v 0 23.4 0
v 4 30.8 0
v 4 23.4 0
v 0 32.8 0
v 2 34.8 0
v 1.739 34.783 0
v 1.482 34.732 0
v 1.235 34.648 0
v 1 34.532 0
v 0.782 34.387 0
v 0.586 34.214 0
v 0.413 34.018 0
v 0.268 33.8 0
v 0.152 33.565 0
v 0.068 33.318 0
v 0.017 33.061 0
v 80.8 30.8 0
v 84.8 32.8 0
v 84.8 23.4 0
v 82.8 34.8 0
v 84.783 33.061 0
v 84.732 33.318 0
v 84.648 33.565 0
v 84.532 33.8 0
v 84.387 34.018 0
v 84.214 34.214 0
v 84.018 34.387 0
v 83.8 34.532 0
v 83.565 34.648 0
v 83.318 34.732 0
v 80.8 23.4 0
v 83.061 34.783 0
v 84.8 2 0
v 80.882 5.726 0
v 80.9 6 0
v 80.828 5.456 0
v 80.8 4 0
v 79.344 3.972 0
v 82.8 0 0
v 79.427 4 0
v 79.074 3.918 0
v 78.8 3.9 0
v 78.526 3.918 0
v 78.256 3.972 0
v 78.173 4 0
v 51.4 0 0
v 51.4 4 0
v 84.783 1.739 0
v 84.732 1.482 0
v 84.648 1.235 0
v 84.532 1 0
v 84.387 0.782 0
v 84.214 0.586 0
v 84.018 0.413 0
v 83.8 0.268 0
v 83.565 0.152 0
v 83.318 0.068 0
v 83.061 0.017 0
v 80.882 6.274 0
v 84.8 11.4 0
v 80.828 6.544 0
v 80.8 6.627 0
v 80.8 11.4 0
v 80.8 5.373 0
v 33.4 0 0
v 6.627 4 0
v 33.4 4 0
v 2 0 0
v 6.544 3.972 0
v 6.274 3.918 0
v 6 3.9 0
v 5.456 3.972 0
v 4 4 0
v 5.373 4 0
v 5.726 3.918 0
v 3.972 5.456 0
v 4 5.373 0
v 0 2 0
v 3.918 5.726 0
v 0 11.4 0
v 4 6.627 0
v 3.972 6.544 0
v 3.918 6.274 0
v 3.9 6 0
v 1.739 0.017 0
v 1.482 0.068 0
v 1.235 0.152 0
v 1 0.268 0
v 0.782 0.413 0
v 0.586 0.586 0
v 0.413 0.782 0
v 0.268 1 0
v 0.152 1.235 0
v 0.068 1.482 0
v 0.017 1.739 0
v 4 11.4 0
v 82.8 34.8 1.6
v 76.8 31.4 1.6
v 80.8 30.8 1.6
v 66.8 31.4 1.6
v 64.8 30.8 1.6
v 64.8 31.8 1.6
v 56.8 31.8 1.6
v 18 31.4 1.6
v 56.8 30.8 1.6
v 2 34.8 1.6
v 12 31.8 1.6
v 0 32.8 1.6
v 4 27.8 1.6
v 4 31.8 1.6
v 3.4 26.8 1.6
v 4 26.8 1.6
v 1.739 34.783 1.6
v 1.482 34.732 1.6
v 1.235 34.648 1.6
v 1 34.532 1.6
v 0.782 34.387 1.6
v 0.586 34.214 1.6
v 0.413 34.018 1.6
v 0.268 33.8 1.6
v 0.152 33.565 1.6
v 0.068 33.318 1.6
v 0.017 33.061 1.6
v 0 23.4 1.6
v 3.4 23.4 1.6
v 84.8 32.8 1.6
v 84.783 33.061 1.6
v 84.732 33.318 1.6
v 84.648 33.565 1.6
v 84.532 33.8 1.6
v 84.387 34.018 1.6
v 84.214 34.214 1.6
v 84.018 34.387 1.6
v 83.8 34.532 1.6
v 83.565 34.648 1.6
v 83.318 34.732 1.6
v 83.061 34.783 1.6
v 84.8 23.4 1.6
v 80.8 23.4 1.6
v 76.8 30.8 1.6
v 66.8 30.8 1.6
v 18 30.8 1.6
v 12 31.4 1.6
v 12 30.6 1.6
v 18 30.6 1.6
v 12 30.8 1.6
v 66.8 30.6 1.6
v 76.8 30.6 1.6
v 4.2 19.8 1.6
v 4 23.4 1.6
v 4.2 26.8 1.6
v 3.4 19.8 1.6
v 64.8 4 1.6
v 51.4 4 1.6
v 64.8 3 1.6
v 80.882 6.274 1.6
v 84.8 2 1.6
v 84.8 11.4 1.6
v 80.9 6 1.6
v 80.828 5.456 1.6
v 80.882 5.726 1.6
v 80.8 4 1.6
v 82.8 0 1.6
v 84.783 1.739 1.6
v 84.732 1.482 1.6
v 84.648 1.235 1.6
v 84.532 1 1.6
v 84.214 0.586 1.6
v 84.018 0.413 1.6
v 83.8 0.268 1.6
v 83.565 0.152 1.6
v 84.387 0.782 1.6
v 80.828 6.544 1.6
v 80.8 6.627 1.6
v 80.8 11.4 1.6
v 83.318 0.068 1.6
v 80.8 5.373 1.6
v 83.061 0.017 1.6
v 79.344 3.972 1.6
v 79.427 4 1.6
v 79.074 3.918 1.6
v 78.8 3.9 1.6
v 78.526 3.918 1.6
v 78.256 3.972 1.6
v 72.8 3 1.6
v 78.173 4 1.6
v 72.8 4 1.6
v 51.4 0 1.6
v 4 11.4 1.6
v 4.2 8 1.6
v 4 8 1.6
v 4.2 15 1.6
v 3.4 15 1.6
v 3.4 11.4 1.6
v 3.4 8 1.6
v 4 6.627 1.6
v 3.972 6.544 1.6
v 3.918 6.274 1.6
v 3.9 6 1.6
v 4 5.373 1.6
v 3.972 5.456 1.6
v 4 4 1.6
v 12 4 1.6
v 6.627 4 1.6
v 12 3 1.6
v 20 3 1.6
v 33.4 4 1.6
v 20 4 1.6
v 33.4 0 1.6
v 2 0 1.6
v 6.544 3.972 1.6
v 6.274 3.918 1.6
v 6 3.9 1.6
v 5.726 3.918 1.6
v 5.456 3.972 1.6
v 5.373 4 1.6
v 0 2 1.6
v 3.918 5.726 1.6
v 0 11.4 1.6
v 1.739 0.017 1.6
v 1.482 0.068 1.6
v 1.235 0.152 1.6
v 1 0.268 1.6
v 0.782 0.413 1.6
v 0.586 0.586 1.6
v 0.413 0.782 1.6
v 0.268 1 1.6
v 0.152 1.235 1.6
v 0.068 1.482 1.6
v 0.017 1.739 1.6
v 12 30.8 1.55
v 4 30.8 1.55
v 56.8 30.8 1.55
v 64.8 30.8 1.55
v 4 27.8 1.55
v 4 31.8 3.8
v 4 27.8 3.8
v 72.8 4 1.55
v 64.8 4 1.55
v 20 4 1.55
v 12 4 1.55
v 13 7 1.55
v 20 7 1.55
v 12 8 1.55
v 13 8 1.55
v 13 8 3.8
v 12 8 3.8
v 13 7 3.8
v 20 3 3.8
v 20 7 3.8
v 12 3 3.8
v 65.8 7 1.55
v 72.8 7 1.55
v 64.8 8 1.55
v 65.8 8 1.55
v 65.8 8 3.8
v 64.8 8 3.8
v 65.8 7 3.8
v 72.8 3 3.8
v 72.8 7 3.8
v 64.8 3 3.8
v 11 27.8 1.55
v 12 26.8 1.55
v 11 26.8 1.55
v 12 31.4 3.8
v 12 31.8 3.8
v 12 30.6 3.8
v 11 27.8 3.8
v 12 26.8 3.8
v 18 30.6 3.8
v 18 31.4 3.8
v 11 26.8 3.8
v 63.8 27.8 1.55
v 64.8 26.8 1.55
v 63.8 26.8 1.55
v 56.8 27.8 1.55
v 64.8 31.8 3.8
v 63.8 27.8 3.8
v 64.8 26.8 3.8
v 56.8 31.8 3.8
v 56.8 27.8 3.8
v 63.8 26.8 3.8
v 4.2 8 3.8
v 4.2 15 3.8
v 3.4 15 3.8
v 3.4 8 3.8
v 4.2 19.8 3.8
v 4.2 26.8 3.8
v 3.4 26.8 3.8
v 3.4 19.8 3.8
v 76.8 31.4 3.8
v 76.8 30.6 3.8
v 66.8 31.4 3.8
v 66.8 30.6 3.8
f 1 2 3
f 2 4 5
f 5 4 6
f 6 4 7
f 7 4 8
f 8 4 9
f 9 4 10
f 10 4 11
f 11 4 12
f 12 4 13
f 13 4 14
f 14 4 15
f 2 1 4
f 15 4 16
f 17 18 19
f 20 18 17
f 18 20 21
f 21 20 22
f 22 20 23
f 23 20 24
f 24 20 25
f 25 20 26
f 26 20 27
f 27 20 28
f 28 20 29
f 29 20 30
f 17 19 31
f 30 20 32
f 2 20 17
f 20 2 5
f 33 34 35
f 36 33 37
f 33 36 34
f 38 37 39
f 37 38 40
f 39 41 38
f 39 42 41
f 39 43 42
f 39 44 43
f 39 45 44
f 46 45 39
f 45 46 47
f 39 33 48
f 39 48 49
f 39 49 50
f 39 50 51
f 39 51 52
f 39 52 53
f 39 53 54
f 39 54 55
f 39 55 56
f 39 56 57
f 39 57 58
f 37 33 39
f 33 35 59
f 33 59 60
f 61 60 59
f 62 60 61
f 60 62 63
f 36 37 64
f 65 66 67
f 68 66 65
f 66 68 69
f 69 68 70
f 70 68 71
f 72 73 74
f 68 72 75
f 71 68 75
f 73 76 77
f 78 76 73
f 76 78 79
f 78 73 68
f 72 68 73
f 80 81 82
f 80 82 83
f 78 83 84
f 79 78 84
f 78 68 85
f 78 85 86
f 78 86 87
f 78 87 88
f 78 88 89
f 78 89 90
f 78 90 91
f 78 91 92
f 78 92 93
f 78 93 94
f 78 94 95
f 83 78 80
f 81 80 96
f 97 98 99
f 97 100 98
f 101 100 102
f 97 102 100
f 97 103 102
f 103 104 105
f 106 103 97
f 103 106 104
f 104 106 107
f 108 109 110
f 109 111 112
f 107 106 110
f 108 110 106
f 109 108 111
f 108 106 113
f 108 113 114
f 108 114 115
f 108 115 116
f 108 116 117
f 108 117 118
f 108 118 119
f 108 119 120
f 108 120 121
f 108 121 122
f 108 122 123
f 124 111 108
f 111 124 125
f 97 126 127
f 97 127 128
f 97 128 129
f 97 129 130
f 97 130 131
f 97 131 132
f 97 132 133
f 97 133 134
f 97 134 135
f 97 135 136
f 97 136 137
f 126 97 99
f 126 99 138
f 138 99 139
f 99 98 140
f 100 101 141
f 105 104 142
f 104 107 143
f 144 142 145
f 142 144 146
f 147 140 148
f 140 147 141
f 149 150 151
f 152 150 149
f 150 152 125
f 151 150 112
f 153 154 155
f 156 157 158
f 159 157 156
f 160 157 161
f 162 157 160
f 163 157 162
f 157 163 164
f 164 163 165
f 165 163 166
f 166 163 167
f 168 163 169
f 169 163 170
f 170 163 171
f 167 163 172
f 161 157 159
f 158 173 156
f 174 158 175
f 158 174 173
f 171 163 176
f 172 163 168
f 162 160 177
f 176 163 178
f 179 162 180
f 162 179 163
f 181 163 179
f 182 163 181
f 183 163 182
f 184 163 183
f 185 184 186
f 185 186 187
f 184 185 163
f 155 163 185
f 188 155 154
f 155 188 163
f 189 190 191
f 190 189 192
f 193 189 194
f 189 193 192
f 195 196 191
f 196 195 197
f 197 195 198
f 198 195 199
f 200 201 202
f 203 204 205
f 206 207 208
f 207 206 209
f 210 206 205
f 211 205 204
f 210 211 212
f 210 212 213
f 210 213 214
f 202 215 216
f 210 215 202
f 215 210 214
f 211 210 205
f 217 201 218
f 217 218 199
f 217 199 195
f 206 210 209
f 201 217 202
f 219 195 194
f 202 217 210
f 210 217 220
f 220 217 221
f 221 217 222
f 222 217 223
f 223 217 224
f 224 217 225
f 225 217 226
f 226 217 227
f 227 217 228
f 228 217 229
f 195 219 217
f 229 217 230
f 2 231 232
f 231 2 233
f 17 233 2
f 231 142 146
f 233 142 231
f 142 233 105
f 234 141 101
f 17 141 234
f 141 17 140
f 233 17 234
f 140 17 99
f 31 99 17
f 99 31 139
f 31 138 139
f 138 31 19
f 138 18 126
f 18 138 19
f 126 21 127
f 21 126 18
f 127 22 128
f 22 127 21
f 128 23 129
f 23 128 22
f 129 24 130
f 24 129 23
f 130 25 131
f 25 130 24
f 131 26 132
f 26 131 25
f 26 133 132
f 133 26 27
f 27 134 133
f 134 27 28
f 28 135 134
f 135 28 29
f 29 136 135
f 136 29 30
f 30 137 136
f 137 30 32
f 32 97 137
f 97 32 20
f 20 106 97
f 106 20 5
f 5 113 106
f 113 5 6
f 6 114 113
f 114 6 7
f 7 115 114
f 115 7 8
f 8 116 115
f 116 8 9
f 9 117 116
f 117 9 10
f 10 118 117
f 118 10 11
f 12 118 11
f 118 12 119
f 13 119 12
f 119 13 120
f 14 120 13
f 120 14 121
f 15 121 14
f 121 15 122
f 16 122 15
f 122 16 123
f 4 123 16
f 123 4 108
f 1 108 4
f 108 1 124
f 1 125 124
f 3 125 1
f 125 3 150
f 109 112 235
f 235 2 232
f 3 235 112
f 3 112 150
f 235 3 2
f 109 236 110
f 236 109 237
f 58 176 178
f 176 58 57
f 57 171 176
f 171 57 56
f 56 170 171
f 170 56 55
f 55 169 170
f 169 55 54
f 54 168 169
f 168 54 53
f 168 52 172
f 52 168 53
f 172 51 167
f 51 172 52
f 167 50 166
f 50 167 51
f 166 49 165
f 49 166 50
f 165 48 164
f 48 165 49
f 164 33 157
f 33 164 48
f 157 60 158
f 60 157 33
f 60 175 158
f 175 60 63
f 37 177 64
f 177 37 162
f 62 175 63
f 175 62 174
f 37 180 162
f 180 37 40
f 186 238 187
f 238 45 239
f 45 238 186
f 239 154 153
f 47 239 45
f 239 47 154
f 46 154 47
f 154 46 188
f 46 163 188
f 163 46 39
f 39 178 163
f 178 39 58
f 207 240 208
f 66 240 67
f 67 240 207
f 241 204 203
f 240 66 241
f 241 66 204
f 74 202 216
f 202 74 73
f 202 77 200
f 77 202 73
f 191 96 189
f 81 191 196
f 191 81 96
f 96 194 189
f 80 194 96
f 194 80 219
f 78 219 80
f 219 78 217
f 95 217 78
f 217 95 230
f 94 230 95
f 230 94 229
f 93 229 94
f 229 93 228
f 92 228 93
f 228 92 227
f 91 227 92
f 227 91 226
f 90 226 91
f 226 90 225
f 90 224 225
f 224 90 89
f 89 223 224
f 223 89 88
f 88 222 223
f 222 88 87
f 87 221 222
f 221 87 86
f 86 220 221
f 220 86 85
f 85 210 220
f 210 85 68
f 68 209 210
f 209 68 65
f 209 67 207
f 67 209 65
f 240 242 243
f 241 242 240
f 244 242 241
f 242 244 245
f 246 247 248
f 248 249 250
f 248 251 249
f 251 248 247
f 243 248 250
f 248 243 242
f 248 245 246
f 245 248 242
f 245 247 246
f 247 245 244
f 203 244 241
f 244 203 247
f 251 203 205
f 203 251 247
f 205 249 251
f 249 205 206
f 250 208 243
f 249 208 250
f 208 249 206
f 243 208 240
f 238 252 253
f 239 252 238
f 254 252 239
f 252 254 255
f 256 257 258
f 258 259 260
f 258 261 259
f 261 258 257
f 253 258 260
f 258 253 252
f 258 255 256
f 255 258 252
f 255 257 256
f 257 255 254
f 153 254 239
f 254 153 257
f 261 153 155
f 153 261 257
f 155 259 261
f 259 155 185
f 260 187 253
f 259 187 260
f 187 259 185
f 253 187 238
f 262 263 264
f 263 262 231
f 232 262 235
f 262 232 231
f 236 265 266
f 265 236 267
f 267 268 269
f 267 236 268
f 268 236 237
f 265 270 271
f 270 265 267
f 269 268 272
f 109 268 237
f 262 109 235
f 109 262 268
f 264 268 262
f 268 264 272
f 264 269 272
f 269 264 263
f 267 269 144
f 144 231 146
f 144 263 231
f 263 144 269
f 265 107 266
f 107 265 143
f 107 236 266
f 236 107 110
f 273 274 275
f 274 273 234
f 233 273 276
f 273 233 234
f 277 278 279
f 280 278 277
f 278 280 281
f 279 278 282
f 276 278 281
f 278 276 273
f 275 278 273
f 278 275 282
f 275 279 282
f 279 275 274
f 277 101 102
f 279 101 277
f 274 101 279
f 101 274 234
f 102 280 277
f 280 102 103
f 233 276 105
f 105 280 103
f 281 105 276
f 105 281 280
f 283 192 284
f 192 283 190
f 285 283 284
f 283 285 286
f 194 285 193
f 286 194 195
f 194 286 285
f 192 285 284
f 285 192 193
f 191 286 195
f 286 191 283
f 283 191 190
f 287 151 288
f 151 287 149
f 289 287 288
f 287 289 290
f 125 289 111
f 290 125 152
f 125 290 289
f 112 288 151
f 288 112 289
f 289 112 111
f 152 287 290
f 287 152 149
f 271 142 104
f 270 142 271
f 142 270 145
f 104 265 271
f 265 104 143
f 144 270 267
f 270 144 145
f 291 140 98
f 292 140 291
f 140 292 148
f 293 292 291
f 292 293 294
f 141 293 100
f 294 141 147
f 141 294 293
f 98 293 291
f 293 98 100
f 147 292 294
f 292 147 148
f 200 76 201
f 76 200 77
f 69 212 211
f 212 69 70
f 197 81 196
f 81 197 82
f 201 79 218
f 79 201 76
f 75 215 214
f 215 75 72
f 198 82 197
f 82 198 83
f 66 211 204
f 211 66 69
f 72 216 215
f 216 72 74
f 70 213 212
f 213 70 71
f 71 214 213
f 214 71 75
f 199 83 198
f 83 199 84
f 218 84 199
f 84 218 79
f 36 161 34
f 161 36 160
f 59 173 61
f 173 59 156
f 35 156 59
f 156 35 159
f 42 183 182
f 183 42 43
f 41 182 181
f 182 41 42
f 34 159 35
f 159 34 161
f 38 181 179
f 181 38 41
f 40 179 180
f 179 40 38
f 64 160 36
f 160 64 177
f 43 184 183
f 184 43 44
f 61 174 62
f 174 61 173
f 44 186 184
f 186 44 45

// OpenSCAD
// Loose microscope slide locator for printing directly on an Ender 3 bed.
// Units are millimeters. The slide datum is the inside lower-left corner.

$fn = 48;

slide_x = 75.0;
slide_y = 25.0;
slide_clearance = 0.9;

wall = 4.0;
base_thickness = 1.6;
clip_height = 2.2;
clip_lip = 1.0;
corner_radius = 2.0;

finger_gap = 12.0;
front_gap = 18.0;

bed_anchor_hole_d = 4.2;
bed_anchor_margin = 6.0;

inner_x = slide_x + 2 * slide_clearance;
inner_y = slide_y + 2 * slide_clearance;
outer_x = inner_x + 2 * wall;
outer_y = inner_y + 2 * wall;

module rounded_rect(size, r) {
    hull() {
        translate([r, r]) circle(r = r);
        translate([size[0] - r, r]) circle(r = r);
        translate([size[0] - r, size[1] - r]) circle(r = r);
        translate([r, size[1] - r]) circle(r = r);
    }
}

module frame_2d() {
    difference() {
        rounded_rect([outer_x, outer_y], corner_radius);
        translate([wall, wall])
            square([inner_x, inner_y], center = false);

        // Front access gap for sliding the glass in and pushing it out.
        translate([outer_x / 2 - front_gap / 2, -0.1])
            square([front_gap, wall + 0.2], center = false);

        // Side finger reliefs.
        translate([-0.1, outer_y / 2 - finger_gap / 2])
            square([wall + 0.2, finger_gap], center = false);
        translate([outer_x - wall - 0.1, outer_y / 2 - finger_gap / 2])
            square([wall + 0.2, finger_gap], center = false);
    }
}

module low_clip(x, y, rot) {
    translate([x, y, base_thickness - 0.05])
        rotate([0, 0, rot])
            linear_extrude(clip_height + 0.05)
                polygon(points = [
                    [0, 0],
                    [8, 0],
                    [8, wall],
                    [clip_lip, wall],
                    [clip_lip, wall + clip_lip],
                    [0, wall + clip_lip]
                ]);
}

module slide_holder() {
    difference() {
        union() {
            linear_extrude(base_thickness) frame_2d();

            // Four low overhangs. They should locate without pinching; shim later.
            low_clip(wall + 8, wall - clip_lip, 0);
            low_clip(outer_x - wall - 16, wall - clip_lip, 0);
            low_clip(wall + 8, outer_y - wall + clip_lip, 180);
            low_clip(outer_x - wall - 16, outer_y - wall + clip_lip, 180);

            // Raised datum nubs against the left and rear edges.
            translate([wall - 0.6, wall + 4, base_thickness])
                cube([0.8, 7, clip_height]);
            translate([wall - 0.6, outer_y - wall - 11, base_thickness])
                cube([0.8, 7, clip_height]);
            translate([wall + 4, outer_y - wall - 0.2, base_thickness])
                cube([10, 0.8, clip_height]);
            translate([outer_x - wall - 14, outer_y - wall - 0.2, base_thickness])
                cube([10, 0.8, clip_height]);
        }

        // Optional screw/tape registration holes outside the slide area.
        translate([bed_anchor_margin, bed_anchor_margin, -0.1])
            cylinder(h = base_thickness + clip_height + 0.3, d = bed_anchor_hole_d);
        translate([outer_x - bed_anchor_margin, bed_anchor_margin, -0.1])
            cylinder(h = base_thickness + clip_height + 0.3, d = bed_anchor_hole_d);
    }
}

slide_holder();
